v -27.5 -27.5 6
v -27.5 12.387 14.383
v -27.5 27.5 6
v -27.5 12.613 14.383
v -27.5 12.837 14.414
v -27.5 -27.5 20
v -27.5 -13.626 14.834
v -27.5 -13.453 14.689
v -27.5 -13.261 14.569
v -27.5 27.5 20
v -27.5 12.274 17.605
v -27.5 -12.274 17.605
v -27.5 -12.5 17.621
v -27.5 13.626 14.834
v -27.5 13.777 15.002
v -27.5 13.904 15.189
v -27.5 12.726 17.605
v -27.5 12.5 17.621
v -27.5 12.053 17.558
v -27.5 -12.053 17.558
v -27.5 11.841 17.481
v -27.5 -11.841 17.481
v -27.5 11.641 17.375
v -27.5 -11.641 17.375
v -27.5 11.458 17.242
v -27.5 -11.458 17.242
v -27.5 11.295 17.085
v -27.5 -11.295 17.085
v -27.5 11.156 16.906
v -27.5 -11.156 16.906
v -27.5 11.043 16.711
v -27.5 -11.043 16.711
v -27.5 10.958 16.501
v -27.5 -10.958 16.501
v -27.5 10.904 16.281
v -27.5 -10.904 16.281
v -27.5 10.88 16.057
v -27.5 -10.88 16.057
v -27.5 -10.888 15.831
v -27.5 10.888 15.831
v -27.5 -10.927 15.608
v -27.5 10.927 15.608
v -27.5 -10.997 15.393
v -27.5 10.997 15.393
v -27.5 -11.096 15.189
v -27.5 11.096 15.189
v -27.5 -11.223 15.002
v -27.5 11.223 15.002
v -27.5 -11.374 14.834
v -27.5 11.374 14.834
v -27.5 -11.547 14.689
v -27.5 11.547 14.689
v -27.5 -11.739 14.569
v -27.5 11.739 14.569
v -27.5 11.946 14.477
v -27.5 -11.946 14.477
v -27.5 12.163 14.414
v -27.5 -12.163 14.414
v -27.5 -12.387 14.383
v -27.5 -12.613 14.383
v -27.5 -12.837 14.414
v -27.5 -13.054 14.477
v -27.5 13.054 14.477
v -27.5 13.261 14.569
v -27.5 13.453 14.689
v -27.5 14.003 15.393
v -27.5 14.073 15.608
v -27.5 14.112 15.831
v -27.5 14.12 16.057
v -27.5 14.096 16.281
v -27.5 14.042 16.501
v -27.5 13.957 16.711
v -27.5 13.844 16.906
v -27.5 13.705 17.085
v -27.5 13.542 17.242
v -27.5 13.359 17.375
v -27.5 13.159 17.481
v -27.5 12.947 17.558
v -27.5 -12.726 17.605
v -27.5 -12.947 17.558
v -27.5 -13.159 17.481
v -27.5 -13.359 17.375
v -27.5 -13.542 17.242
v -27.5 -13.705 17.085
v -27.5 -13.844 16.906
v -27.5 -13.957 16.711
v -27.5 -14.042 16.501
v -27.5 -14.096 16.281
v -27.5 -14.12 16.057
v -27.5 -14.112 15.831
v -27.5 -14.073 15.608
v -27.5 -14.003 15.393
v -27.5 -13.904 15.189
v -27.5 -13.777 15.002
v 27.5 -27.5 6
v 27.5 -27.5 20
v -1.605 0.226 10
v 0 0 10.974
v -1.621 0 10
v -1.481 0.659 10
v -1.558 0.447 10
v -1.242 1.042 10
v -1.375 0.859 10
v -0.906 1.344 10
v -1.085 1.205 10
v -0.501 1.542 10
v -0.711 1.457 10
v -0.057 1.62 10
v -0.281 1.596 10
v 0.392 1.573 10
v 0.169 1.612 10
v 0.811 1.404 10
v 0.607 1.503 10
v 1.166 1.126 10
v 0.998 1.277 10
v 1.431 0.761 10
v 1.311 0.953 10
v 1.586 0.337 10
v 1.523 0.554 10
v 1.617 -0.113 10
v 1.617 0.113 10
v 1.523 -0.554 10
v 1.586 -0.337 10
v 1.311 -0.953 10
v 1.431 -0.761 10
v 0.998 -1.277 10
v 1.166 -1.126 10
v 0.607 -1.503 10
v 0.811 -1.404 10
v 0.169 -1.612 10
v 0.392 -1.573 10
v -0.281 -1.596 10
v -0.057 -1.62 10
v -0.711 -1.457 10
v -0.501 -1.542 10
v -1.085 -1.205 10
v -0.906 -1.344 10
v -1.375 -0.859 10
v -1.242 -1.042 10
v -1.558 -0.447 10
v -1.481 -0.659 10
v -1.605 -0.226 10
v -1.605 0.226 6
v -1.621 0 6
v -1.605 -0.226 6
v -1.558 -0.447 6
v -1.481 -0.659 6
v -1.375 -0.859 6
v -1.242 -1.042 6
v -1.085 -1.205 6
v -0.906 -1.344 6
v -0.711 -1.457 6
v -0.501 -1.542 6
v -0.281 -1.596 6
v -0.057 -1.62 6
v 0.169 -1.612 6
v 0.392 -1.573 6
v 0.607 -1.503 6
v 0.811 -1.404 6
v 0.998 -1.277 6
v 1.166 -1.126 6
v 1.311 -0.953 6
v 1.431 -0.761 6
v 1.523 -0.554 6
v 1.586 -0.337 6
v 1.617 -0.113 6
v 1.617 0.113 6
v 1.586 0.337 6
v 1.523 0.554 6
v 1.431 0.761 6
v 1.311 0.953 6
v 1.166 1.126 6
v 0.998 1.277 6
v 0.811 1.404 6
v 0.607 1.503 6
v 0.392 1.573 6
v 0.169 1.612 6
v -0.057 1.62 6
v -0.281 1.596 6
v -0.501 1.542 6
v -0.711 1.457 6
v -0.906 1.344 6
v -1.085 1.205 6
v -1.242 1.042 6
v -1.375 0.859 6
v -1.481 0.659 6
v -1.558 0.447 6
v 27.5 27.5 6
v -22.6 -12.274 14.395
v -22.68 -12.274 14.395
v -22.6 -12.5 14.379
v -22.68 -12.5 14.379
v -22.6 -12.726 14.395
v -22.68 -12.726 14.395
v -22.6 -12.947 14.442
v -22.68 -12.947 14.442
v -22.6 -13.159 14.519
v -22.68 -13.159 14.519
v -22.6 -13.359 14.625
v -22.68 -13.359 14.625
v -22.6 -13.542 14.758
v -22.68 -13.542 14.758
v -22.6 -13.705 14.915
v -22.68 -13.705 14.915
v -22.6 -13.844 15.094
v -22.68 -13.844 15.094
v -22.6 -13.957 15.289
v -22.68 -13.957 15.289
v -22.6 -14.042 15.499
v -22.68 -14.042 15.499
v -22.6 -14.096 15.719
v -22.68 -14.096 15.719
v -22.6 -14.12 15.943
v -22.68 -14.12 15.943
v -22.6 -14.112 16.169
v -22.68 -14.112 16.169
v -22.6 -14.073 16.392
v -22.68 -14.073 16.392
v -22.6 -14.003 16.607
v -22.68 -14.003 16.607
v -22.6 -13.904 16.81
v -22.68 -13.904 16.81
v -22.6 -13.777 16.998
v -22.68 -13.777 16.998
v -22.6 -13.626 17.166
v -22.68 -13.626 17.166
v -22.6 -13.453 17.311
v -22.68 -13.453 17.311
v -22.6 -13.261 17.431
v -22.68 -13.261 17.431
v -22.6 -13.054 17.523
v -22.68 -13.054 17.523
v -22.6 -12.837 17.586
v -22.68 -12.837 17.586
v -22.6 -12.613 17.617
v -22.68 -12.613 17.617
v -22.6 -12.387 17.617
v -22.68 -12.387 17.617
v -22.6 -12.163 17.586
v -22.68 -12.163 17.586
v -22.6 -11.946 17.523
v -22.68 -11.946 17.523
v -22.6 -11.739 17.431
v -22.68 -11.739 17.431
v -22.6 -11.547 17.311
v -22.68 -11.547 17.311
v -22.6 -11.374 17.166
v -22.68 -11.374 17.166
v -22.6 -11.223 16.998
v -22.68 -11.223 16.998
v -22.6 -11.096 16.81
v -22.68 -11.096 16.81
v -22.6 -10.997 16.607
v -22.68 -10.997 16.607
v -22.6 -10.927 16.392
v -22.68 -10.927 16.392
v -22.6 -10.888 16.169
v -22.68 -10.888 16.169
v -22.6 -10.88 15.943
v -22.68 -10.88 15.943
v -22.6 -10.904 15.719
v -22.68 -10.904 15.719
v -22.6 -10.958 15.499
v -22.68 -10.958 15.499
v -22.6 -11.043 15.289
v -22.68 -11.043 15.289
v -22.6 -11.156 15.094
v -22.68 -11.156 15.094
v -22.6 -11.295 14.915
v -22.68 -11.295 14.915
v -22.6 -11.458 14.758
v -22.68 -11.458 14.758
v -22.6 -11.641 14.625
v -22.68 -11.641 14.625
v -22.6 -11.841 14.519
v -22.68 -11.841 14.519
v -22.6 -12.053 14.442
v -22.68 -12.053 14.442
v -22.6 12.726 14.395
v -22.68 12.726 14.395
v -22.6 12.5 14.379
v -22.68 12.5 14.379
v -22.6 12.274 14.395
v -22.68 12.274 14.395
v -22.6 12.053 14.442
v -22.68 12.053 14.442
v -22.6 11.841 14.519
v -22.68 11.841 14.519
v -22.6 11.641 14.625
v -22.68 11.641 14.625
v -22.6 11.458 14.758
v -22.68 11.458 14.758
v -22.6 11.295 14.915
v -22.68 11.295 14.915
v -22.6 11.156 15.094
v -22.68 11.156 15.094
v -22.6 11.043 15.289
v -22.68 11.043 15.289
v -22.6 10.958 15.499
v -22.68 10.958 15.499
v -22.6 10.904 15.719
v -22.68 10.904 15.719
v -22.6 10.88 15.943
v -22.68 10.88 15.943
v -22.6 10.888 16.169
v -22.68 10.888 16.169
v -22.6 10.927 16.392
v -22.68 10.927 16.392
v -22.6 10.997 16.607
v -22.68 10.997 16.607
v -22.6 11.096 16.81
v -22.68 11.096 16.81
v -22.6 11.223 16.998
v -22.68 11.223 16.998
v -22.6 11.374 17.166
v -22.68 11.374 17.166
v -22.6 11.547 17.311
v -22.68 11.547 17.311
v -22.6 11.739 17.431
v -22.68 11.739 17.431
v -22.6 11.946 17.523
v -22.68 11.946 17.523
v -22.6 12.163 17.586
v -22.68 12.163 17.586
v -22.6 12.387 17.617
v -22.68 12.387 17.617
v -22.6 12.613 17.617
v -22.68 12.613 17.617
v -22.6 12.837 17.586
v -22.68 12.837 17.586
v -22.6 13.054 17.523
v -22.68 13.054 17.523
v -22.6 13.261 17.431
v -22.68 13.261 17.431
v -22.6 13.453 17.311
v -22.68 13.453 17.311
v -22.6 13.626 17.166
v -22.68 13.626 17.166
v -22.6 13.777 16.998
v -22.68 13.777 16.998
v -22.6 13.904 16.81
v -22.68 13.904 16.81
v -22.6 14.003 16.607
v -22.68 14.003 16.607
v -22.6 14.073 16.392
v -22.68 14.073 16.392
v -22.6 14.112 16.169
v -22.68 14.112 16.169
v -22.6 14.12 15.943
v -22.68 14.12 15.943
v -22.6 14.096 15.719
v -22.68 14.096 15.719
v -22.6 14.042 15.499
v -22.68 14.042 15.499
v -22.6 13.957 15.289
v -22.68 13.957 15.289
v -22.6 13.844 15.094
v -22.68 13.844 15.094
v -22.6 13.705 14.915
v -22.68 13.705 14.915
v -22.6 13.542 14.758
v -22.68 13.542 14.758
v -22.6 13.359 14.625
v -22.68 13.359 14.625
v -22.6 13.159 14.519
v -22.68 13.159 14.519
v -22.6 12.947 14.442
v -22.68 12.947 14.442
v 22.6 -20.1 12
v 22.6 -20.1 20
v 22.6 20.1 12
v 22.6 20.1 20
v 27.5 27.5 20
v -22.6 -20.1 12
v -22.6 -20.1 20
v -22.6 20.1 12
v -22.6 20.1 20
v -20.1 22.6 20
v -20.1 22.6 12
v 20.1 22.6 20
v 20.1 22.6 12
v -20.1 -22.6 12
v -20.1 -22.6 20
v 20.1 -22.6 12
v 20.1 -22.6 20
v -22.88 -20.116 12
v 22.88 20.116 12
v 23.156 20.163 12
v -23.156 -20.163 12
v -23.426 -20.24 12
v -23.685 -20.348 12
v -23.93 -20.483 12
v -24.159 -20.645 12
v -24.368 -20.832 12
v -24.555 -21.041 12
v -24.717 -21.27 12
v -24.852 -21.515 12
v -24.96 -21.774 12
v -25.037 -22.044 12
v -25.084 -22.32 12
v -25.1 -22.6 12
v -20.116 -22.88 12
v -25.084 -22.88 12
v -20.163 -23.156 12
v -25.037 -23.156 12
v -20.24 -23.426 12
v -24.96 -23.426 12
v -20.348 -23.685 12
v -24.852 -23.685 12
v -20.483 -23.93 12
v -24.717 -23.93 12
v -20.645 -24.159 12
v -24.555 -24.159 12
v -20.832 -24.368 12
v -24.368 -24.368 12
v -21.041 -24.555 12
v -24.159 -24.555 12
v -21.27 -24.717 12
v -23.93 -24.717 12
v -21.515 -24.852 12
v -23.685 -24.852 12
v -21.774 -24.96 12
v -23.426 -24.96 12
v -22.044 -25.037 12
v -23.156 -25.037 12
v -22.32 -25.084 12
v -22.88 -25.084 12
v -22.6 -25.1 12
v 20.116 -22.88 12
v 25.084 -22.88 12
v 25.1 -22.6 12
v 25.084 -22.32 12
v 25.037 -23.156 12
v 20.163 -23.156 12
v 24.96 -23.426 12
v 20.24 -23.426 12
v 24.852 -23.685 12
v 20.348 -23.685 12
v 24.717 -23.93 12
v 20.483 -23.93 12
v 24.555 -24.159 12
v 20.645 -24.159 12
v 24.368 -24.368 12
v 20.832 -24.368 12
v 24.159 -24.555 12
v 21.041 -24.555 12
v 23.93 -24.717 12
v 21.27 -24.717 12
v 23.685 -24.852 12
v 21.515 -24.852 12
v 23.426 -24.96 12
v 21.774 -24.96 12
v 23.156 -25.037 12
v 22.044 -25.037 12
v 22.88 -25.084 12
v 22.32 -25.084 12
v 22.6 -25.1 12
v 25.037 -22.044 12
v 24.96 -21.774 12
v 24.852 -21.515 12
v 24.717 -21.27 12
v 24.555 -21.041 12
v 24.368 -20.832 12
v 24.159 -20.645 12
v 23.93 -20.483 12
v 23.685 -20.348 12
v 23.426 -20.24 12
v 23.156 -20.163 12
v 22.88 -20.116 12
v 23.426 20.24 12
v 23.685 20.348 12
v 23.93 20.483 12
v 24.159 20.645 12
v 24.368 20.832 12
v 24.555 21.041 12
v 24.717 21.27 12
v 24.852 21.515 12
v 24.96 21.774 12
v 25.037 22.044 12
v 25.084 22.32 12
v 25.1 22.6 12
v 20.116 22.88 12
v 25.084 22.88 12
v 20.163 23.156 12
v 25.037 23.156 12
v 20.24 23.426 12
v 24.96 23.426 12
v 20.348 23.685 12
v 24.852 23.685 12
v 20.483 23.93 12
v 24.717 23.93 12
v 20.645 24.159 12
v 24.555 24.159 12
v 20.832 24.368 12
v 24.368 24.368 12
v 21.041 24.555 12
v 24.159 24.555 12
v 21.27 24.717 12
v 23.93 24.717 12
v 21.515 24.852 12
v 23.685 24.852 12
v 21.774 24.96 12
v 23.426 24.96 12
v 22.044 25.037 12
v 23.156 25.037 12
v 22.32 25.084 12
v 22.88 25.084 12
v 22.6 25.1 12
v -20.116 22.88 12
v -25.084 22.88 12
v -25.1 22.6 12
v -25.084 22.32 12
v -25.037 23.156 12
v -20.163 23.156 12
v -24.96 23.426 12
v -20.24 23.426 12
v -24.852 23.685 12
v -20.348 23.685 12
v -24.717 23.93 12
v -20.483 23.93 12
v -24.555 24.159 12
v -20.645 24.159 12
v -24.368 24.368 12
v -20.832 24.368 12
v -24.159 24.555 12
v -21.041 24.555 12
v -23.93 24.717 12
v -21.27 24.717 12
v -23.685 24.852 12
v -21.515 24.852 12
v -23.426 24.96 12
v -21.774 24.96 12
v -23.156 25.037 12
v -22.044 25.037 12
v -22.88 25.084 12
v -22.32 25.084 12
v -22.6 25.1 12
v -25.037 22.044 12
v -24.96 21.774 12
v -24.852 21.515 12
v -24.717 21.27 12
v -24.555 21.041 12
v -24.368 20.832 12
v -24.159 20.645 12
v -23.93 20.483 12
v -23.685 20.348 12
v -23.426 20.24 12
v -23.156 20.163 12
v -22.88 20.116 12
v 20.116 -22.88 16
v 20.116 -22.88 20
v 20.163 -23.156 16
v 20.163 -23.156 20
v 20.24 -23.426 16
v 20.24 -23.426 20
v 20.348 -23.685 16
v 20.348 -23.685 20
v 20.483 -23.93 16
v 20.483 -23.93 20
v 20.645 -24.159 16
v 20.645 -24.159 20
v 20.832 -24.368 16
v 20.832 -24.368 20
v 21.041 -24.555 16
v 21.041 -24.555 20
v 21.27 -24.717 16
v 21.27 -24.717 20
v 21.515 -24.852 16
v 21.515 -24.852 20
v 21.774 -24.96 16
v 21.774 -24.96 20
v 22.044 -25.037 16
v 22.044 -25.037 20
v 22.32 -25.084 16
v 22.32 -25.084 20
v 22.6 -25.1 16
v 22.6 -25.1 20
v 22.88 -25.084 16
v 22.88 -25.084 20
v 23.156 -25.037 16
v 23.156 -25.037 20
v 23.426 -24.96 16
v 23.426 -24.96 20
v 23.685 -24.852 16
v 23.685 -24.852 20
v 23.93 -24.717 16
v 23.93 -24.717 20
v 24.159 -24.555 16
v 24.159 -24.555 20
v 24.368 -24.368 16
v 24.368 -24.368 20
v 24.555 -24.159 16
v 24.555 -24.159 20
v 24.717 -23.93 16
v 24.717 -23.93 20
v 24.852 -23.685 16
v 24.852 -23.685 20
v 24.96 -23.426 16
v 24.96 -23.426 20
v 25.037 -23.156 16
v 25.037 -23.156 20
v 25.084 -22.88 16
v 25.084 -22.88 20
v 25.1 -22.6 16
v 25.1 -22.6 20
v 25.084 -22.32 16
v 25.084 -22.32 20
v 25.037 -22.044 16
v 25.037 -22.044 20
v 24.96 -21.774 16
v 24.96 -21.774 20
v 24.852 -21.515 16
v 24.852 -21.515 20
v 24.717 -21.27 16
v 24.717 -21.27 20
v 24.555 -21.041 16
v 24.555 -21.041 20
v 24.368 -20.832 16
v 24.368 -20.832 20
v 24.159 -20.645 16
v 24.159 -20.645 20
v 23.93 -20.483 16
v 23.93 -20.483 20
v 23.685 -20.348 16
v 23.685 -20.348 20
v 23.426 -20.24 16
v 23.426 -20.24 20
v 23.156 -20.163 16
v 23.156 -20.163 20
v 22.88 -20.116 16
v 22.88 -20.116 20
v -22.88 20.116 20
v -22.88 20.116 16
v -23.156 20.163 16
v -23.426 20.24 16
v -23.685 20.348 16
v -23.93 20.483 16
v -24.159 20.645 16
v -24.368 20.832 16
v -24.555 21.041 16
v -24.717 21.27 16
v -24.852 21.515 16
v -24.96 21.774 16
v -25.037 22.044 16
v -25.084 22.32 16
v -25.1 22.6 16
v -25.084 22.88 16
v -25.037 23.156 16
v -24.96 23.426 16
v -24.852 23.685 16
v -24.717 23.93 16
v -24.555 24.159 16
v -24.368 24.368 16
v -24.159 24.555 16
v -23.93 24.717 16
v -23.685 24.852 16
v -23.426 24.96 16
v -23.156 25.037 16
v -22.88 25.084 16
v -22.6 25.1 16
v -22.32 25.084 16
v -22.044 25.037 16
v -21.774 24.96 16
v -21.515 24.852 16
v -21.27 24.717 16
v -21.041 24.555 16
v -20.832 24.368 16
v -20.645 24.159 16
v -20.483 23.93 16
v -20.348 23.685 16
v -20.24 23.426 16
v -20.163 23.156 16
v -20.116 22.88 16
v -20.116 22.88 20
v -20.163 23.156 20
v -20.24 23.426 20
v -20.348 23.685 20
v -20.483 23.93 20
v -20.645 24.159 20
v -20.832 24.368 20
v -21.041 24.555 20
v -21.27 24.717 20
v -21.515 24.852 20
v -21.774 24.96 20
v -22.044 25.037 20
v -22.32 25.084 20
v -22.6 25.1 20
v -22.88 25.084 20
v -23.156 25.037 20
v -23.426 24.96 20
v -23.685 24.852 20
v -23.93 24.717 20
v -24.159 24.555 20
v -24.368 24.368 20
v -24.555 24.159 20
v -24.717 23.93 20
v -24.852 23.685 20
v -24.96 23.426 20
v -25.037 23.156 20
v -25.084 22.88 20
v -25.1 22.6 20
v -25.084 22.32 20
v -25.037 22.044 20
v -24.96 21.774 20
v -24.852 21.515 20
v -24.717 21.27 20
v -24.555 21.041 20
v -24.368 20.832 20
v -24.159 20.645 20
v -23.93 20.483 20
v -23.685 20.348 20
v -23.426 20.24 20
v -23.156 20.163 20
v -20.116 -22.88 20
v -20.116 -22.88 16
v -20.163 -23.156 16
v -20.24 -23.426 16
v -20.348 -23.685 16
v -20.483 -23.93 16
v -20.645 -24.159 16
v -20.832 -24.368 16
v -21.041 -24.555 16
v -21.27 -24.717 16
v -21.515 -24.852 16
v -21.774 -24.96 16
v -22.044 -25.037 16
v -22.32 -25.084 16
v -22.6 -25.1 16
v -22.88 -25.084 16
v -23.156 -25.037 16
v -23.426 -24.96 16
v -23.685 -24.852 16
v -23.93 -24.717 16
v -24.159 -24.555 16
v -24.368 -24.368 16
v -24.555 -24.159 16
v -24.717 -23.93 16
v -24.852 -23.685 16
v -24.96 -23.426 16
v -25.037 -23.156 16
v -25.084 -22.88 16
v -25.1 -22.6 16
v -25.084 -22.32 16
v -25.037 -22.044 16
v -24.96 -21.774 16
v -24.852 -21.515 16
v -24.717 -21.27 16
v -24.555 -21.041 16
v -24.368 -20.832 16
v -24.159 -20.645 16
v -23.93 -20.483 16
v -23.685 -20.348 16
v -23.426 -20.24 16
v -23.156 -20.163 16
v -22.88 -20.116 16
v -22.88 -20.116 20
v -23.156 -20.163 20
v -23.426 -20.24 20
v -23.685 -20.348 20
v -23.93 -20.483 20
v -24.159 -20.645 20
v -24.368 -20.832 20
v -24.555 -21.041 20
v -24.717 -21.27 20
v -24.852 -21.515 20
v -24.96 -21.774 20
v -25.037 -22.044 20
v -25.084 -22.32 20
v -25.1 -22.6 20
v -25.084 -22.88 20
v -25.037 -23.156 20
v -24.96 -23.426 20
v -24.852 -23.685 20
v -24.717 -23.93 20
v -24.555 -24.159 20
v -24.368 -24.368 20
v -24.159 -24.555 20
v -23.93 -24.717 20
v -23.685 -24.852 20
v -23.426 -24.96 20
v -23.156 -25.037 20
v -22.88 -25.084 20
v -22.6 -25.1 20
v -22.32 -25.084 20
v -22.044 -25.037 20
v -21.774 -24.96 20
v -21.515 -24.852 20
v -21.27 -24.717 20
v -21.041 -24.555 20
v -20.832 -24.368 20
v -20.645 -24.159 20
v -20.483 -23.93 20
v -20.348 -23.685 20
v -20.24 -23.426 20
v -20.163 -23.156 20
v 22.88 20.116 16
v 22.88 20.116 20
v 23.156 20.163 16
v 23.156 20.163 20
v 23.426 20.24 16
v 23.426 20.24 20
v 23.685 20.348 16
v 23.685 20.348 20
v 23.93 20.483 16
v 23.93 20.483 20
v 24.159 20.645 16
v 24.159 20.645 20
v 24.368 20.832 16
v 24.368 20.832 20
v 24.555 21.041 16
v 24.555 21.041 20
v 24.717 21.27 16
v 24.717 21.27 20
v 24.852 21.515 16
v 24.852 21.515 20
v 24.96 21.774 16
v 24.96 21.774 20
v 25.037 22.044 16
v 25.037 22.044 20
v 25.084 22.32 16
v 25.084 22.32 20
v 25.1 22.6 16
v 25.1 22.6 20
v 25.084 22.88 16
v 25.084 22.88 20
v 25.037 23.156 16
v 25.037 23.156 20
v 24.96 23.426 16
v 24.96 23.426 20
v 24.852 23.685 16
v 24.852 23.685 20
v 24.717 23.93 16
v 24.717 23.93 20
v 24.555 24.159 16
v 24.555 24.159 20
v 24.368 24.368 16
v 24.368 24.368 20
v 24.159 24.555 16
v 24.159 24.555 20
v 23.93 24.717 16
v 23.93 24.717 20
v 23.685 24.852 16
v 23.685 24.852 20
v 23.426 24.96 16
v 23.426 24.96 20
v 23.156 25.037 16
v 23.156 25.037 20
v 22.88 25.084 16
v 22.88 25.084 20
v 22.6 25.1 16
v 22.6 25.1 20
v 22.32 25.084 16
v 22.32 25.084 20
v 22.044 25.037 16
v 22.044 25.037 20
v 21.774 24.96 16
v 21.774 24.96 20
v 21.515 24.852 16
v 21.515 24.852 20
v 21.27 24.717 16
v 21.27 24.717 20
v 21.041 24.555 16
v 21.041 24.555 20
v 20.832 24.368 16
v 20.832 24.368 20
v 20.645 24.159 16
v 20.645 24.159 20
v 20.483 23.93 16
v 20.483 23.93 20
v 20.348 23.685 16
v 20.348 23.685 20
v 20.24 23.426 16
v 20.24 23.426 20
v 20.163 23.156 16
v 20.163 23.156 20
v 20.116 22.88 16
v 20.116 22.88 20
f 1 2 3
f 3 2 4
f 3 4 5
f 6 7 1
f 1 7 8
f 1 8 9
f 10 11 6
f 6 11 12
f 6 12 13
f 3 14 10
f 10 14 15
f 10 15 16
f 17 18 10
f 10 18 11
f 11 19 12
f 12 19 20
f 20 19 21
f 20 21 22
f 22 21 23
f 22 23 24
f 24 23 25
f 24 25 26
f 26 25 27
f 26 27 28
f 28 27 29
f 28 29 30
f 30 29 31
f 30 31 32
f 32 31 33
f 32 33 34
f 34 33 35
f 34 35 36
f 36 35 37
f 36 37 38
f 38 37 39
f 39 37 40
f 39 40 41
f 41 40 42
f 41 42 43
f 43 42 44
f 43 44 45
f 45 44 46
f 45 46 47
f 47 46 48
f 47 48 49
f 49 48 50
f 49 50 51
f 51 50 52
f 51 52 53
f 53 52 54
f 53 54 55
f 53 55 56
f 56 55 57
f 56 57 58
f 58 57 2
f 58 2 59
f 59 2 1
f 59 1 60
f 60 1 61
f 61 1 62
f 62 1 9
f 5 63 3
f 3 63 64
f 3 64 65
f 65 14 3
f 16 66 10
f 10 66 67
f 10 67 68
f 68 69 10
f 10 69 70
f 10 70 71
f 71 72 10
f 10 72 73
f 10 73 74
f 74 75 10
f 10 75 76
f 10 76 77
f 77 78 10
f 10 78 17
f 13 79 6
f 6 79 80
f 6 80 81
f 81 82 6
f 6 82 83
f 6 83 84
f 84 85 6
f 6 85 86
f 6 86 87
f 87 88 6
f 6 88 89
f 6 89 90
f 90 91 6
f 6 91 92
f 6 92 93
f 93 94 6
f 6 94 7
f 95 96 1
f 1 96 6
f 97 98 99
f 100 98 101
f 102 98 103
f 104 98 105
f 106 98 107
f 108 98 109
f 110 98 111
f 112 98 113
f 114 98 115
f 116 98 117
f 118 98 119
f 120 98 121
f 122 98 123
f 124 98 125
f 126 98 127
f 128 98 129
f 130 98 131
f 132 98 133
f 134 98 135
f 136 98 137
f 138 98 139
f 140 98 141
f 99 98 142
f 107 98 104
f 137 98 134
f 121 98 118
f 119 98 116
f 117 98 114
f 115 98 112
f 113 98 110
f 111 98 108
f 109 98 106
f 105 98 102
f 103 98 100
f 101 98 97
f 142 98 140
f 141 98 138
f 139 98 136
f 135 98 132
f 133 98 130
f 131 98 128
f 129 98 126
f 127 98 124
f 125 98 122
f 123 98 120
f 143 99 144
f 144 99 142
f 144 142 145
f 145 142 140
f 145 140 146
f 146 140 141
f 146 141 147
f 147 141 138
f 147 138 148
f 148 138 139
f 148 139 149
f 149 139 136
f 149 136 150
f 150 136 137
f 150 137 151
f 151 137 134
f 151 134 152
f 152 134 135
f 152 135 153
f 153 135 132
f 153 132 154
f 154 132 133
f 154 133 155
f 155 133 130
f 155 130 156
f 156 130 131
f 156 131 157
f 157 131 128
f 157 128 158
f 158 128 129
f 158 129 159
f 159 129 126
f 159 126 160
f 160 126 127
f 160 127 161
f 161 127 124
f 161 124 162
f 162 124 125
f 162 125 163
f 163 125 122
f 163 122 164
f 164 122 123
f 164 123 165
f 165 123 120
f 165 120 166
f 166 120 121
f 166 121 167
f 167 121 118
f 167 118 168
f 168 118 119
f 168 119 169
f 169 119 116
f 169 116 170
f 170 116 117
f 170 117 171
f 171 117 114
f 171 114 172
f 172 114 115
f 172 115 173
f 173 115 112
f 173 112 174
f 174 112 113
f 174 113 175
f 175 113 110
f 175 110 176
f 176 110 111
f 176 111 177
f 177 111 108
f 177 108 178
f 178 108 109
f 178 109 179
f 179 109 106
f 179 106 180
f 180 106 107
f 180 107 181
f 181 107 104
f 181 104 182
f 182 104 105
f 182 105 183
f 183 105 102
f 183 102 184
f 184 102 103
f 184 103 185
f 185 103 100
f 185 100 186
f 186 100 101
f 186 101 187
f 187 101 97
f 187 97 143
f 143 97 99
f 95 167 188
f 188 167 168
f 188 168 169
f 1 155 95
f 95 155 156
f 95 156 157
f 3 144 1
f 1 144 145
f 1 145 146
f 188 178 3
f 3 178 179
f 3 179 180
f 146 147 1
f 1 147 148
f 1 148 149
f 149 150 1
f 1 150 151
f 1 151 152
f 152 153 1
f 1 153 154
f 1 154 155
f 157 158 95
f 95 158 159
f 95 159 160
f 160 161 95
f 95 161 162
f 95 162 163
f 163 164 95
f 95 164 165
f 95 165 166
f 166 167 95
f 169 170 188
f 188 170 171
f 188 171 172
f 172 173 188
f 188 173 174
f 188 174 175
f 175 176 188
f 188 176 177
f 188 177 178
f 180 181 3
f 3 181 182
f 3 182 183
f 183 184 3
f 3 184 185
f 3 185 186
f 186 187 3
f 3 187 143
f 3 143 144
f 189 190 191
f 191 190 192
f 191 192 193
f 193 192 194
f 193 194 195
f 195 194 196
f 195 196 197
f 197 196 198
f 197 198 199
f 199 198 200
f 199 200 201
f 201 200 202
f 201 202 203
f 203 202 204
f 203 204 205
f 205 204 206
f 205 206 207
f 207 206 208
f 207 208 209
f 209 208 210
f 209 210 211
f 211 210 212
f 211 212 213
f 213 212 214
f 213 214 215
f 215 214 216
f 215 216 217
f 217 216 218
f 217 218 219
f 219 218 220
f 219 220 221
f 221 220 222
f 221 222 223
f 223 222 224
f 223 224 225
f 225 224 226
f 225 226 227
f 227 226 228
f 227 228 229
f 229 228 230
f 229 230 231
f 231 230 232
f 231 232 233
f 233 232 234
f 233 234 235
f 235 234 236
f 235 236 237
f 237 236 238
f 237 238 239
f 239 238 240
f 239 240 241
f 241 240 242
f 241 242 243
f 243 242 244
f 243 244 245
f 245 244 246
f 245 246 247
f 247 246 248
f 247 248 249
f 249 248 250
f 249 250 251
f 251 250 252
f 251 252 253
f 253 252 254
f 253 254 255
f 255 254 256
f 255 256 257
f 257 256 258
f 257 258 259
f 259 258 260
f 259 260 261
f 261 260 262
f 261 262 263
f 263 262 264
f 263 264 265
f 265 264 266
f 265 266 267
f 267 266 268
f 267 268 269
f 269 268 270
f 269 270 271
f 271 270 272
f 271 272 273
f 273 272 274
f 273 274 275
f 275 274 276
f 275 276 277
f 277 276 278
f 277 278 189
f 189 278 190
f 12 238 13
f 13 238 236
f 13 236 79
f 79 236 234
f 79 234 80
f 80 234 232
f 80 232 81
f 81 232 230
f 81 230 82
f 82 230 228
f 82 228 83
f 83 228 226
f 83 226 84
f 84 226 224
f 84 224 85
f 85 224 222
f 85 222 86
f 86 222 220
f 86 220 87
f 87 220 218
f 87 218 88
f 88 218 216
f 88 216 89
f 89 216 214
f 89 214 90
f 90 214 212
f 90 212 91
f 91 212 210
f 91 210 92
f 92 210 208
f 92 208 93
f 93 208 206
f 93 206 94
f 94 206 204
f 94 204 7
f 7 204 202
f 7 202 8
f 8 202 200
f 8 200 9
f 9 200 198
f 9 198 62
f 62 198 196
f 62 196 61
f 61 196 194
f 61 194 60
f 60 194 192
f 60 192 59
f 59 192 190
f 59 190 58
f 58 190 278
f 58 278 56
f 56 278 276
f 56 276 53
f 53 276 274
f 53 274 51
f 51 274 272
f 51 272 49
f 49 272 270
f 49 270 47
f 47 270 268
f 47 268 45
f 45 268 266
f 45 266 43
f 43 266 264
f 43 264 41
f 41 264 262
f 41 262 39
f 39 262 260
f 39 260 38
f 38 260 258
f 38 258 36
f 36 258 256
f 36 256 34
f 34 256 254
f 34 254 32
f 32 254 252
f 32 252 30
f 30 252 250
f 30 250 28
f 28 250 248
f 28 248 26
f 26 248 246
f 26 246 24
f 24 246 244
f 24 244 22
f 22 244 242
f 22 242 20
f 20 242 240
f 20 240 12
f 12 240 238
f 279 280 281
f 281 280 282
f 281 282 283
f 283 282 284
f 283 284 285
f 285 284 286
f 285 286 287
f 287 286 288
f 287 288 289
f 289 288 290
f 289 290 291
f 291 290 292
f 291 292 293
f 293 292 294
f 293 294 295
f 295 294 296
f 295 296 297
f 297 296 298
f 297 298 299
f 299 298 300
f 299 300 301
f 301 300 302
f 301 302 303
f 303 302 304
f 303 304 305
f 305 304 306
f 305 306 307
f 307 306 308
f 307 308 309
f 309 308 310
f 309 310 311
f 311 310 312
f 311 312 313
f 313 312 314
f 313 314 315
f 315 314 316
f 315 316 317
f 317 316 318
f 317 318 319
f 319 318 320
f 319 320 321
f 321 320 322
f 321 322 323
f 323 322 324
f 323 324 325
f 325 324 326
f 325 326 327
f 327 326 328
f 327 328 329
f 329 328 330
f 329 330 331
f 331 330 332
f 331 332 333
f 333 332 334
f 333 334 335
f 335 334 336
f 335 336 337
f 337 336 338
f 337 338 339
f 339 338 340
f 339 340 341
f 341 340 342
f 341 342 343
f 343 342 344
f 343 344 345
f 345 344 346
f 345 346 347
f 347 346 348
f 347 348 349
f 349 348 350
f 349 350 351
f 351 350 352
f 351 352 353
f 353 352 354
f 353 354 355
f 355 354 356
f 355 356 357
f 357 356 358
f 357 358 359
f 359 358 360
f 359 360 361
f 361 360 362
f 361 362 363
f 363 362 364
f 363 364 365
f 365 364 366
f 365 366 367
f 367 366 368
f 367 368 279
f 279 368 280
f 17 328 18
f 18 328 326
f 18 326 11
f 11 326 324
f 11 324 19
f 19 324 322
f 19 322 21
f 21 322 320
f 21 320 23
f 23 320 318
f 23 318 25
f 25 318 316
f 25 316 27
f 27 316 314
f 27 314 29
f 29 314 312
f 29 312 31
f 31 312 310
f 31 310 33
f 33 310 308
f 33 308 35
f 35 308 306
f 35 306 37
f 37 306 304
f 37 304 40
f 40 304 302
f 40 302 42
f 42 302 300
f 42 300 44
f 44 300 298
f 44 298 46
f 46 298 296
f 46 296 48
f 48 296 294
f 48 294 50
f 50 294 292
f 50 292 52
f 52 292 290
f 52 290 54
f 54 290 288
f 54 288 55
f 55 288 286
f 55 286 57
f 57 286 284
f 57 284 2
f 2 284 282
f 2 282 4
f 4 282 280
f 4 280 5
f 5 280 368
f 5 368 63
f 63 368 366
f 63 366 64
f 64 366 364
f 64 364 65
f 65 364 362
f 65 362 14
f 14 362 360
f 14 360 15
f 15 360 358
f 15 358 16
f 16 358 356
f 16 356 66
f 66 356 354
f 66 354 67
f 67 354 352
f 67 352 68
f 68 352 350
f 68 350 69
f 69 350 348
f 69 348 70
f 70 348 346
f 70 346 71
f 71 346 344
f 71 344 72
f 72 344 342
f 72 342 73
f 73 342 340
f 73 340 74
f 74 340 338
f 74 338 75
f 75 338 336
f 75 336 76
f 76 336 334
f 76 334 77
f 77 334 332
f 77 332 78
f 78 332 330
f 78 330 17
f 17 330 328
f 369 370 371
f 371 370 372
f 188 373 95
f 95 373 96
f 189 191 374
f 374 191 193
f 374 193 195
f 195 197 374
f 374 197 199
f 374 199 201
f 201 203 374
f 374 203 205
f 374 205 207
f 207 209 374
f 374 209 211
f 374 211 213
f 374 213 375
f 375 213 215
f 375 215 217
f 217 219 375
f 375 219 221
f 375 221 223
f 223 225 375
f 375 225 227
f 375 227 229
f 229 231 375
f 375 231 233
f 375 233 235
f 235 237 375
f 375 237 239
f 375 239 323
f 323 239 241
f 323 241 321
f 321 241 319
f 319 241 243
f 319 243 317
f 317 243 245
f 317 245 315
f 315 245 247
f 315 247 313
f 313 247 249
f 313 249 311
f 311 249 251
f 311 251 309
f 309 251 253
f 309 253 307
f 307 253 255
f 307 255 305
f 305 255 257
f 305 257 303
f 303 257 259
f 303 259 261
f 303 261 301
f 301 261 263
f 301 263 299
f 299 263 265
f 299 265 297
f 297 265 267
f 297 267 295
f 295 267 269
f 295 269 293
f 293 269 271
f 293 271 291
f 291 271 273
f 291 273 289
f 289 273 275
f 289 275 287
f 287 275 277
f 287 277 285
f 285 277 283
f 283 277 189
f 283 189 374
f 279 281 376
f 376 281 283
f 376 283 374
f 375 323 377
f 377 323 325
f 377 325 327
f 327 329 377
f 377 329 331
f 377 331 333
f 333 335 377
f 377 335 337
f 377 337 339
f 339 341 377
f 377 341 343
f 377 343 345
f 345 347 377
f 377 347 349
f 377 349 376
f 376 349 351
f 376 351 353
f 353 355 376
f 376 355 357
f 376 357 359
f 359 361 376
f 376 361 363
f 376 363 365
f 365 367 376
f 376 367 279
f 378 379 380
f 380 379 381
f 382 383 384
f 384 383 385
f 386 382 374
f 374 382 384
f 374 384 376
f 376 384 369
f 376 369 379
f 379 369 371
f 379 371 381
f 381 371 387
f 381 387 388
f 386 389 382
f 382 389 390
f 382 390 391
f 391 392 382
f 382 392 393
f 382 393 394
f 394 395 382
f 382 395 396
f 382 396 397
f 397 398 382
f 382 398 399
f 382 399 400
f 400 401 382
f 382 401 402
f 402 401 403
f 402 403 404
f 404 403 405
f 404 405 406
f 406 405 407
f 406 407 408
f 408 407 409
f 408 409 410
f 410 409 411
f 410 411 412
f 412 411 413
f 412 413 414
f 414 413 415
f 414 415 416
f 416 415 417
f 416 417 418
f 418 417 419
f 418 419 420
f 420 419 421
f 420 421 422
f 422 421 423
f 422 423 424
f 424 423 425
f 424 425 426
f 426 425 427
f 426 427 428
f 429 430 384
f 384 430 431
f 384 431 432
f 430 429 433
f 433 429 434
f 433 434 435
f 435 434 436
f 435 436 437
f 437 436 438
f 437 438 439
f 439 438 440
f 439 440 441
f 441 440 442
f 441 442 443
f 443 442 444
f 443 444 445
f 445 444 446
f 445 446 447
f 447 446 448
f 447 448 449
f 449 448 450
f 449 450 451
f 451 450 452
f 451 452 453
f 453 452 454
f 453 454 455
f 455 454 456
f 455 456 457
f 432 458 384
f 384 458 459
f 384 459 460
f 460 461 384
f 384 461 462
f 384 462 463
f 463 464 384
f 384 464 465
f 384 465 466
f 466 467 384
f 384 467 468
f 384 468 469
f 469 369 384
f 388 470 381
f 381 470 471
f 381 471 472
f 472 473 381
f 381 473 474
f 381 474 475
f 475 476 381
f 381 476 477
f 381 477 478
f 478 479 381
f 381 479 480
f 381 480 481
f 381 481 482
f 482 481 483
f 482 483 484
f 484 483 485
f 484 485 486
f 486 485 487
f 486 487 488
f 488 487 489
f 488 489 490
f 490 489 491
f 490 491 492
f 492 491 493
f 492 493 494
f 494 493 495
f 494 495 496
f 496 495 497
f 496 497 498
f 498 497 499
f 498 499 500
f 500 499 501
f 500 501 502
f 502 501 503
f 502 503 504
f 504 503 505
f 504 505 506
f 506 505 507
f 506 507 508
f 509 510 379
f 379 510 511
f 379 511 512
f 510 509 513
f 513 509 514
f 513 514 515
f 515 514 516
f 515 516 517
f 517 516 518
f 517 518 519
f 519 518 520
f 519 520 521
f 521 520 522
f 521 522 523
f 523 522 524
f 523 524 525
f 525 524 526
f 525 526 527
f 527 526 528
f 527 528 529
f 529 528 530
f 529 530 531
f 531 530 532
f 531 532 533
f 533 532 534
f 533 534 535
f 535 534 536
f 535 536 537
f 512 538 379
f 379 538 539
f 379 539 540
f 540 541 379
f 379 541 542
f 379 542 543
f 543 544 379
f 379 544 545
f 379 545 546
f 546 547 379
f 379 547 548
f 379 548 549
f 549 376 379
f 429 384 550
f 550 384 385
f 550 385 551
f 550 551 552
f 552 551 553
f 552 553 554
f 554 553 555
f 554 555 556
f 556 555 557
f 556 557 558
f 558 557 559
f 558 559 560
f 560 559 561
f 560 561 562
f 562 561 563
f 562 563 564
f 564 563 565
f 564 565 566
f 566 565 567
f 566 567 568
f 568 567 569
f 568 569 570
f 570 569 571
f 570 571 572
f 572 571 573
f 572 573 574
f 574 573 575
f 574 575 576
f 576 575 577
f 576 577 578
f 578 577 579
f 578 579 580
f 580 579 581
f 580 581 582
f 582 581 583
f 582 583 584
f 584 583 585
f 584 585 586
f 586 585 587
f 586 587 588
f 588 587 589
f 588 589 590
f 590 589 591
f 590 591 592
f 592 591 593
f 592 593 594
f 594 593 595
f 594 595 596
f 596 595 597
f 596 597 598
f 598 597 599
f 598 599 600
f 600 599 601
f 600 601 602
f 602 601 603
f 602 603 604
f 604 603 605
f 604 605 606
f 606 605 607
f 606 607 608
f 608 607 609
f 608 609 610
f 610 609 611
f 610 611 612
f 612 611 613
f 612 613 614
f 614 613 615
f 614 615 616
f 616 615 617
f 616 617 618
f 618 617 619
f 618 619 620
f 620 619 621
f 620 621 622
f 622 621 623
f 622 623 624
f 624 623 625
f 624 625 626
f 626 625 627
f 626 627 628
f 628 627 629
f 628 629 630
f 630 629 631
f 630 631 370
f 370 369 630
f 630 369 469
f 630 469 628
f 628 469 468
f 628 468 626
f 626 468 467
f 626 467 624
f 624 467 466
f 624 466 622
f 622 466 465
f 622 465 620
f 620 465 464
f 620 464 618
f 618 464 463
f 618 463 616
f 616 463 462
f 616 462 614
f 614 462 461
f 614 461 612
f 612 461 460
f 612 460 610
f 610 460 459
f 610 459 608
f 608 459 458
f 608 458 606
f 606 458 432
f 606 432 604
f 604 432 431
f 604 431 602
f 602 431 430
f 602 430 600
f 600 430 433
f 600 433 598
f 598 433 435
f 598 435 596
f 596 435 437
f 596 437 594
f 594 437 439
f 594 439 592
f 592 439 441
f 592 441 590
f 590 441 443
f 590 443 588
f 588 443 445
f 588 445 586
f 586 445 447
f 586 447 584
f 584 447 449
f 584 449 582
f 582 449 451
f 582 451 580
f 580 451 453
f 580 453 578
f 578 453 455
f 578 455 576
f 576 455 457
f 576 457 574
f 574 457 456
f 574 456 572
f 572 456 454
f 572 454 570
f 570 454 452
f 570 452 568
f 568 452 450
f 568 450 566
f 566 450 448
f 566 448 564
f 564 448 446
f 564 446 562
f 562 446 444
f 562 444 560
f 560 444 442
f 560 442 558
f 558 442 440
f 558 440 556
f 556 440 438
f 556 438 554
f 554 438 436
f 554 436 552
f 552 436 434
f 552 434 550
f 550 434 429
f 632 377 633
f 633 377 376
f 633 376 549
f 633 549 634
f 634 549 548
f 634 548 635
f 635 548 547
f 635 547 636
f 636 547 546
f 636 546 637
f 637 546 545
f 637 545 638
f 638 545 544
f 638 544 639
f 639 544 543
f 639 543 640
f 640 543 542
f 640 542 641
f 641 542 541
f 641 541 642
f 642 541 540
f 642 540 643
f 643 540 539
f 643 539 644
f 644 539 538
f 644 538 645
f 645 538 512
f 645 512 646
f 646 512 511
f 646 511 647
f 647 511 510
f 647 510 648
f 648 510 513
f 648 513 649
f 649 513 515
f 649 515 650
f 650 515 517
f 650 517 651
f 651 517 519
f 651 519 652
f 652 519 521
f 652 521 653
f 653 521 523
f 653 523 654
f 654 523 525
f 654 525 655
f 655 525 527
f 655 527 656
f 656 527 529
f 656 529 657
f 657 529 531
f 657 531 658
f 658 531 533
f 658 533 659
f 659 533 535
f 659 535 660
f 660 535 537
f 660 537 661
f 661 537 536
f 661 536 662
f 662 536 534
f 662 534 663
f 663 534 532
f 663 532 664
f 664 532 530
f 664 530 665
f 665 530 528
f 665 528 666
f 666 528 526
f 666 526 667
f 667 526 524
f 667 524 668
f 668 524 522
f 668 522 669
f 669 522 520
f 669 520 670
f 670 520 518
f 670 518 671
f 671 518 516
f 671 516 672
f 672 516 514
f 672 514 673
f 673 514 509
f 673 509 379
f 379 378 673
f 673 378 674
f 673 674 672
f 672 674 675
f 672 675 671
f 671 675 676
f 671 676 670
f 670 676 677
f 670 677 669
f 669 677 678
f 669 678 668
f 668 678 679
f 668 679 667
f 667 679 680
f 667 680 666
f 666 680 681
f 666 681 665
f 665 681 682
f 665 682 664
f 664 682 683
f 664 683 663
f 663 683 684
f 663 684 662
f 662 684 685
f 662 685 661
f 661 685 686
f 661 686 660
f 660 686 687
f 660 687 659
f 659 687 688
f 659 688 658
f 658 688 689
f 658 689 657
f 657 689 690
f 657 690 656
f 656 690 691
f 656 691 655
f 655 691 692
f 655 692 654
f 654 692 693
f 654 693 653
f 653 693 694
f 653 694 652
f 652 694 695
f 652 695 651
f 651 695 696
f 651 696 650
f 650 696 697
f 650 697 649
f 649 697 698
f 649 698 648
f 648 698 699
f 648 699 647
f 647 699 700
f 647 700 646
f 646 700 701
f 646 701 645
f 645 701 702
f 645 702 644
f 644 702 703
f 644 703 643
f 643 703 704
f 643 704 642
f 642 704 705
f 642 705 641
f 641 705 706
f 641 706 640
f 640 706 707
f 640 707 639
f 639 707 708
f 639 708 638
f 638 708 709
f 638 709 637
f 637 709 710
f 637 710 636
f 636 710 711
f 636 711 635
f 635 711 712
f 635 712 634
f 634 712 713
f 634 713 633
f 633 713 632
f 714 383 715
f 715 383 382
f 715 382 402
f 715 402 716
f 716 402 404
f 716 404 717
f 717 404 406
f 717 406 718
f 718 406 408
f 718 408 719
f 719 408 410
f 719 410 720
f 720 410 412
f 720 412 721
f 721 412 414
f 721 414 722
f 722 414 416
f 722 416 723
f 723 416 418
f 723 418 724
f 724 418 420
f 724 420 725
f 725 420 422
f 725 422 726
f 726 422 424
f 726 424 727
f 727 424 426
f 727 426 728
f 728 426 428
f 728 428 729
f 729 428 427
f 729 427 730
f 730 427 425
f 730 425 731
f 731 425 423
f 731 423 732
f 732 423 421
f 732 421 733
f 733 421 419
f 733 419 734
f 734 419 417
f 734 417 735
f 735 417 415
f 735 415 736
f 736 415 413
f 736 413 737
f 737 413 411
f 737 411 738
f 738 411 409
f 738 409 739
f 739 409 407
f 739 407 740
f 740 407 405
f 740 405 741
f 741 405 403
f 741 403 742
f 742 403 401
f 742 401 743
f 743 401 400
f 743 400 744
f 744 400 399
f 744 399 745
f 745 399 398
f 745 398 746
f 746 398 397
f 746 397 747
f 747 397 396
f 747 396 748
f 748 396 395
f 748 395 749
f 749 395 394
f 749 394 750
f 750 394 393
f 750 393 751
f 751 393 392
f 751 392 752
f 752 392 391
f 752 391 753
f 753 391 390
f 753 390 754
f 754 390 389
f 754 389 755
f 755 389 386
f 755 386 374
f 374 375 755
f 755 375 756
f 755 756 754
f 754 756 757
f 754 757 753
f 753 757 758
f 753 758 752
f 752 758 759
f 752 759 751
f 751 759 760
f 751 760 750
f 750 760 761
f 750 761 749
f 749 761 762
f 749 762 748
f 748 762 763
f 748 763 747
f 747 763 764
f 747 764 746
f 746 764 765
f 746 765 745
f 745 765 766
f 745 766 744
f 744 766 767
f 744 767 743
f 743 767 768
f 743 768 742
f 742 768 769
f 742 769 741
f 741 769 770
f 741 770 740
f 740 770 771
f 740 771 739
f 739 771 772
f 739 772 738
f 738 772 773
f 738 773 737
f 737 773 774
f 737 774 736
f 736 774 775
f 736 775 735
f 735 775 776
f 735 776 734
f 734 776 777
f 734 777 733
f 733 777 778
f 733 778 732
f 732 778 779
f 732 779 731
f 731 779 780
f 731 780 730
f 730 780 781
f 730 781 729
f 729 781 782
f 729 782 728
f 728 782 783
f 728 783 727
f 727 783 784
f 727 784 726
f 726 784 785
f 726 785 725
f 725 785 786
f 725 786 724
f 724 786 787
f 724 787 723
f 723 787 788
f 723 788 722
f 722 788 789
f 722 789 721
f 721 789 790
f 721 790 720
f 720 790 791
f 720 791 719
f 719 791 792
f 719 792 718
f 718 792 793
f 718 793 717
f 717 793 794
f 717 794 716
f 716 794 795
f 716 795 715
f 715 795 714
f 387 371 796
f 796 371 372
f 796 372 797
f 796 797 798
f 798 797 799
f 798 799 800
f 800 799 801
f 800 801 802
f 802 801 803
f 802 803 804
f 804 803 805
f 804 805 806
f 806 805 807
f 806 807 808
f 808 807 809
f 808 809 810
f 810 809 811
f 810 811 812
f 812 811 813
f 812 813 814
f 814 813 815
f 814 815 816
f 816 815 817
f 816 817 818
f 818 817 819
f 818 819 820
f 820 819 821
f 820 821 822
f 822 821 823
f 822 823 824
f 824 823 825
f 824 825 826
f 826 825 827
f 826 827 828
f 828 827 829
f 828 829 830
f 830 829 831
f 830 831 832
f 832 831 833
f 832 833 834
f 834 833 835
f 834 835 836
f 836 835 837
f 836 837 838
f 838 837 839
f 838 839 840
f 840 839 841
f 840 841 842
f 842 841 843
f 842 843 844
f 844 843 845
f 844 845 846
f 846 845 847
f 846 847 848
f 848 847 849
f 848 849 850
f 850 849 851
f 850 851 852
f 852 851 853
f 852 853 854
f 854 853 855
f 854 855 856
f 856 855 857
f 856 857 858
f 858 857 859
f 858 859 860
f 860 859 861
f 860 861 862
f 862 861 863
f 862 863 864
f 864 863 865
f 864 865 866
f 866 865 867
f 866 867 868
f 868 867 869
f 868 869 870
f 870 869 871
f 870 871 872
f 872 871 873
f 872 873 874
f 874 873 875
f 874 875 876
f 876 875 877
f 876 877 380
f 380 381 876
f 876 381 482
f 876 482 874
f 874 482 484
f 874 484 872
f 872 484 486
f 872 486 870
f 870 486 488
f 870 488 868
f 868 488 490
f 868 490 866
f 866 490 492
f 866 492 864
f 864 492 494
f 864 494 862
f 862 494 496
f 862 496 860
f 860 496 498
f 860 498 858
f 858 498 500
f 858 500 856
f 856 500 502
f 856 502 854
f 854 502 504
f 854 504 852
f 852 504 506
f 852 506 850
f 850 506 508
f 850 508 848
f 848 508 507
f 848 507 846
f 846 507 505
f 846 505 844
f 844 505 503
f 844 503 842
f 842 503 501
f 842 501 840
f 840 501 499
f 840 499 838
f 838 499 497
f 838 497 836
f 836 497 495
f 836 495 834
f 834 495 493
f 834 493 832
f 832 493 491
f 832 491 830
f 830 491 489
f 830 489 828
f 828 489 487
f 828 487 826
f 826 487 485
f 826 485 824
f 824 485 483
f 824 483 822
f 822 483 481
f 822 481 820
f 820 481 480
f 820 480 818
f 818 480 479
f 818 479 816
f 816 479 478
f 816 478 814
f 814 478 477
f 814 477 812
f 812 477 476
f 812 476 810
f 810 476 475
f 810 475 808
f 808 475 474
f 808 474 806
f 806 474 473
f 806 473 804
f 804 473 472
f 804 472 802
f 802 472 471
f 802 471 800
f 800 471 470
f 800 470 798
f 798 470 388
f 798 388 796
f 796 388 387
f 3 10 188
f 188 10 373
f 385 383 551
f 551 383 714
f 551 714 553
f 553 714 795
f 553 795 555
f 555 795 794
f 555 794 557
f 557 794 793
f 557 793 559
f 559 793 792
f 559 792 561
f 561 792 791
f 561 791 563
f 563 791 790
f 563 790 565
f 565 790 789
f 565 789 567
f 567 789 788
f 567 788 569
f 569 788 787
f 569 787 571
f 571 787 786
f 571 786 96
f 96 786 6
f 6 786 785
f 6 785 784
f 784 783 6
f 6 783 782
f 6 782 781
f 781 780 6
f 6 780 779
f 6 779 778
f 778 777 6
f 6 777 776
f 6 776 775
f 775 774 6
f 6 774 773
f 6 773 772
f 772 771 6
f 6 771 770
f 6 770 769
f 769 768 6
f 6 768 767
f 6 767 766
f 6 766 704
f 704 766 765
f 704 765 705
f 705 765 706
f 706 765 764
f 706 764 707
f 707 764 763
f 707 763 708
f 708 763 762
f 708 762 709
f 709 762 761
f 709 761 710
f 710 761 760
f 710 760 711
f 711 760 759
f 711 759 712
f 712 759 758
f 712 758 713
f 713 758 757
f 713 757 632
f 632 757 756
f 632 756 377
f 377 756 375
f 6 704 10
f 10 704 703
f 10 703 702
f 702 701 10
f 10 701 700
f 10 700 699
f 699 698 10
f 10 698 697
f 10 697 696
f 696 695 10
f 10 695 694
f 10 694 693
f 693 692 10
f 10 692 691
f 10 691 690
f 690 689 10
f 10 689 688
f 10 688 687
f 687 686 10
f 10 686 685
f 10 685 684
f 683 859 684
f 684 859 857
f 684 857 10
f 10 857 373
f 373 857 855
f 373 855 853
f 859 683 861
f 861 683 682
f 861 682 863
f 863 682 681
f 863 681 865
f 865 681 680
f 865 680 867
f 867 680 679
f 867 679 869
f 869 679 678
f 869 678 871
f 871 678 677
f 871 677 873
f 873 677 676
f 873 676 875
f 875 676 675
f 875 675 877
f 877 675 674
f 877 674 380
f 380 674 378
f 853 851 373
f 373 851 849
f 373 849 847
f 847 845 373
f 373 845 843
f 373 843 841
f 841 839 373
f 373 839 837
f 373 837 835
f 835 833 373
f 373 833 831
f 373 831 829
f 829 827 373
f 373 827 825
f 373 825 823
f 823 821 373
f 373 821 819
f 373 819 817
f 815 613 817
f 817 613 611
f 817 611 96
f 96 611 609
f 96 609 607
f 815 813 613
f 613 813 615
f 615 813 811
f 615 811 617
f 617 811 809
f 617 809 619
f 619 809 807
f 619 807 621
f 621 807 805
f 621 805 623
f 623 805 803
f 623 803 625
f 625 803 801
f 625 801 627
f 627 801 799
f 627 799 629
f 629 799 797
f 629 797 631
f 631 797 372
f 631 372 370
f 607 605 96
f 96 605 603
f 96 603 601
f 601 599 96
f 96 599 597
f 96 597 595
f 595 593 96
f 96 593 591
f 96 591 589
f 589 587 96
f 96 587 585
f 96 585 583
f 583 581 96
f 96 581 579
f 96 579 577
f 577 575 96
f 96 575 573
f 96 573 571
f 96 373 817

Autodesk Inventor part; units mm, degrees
ref_plane "YZ Plane" through (0, 0, 0) normal (1, 0, 0) x (0, 1, 0)
ref_plane "XZ Plane" through (0, 0, 0) normal (0, 1, 0) x (-1, 0, 0)
ref_plane "XY Plane" through (0, 0, 0) normal (0, 0, 1) x (1, 0, 0)
sketch "Sketch1" plane through (0, 0, 0) normal (0, 0, 1) x (1, 0, 0)
  line L0 (0, 38.5) -> (0, -38.5) construction
  line L1 (-38.5, 0) -> (38.5, 0) construction
  line L2 (-27.5, 27.5) -> (27.5, 27.5)
  line L3 (27.5, 27.5) -> (27.5, -27.5)
  line L4 (27.5, -27.5) -> (-27.5, -27.5)
  line L5 (-27.5, -27.5) -> (-27.5, 27.5)
  point P0 (0, 0)
  dimension "d0" = 55
  dimension "d1" = 55
extrude "Extrusion1" add sketch "Sketch1" along normal blind 20
sketch "Sketch4" plane through (0, 0, 20) normal (0, 0, 1) x (1, 0, 0)
  line L0 (-38.5, 0) -> (38.5, 0) construction
  line L1 (0, 38.5) -> (0, -38.5) construction
  line L2 (-22.6, 22.6) -> (22.6, 22.6) construction
  line L3 (22.6, 22.6) -> (22.6, -22.6) construction
  line L4 (22.6, -22.6) -> (-22.6, -22.6) construction
  line L5 (-22.6, -22.6) -> (-22.6, 22.6) construction
  point P0 (0, 0)
  dimension "d15" = 45.2
  dimension "d16" = 45.2
hole "Hole2" at (-22.6, 22.6, 20) at (22.6, 22.6, 20) at (22.6, -22.6, 20) at (-22.6, -22.6, 20) at (-22.6, 22.6, 20) at (22.6, 22.6, 20) direction (0, 0, -1) diameter 5 depth 8
sketch "Sketch5" plane through (0, 0, 20) normal (0, 0, 1) x (1, 0, 0)
  circle A0 centre (-22.6, 22.6) radius 2.5 projected
  circle A1 centre (22.6, -22.6) radius 2.5 projected
  line L0 (-22.6, 22.6) -> (22.6, 22.6)
  line L1 (22.6, 22.6) -> (22.6, -22.6)
  line L2 (22.6, -22.6) -> (-22.6, -22.6)
  line L3 (-22.6, -22.6) -> (-22.6, 22.6)
  point P0 (0, 0)
extrude "Extrusion3" cut sketch "Sketch5" against normal blind 8 contours L0 L1 A1 L2 L3 A0 | A0 L3 L0 | L1 L2 A1 picked at (-20.9542, 22.4146) picked at (21.1977, -21.7189)
sketch "Sketch6" plane through (-27.5, -27.5, 0) normal (-1, 0, 0) x (0, 0, 1)
  line L0 (0, 55) -> (20, 55) projected
  line L1 (0, 0) -> (20, 0) projected
  line L2 (20, 7.4) -> (12, 7.4) construction
  line L3 (20, 47.6) -> (20, 7.4) construction
  line L4 (12, 47.6) -> (20, 47.6) construction
  line L5 (12, 7.4) -> (12, 47.6) construction
  line L6 (16, 47.6) -> (16, 7.4) construction
  point P0 (0, 27.5)
  point P1 (16, 40)
  point P2 (16, 15)
  dimension "d26" = 15
  dimension "d27" = 15
hole "Hole3" at (-27.5, 12.5, 16) at (-27.5, -12.5, 16) direction (1, 0, 0) diameter 3.242 end up to surface thread size "M4x0.7" class "6H" standard "ANSI Metric M Profile"
sketch "Sketch8" plane through (0, 0, 0) normal (0, 0, -1) x (-1, 0, 0)
  line L0 (27.5, 27.5) -> (-27.5, 27.5) construction
  line L1 (-27.5, 27.5) -> (-27.5, -27.5) construction
  line L2 (-27.5, -27.5) -> (27.5, -27.5) construction
  line L3 (27.5, -27.5) -> (27.5, 27.5) construction
  line L4 (0, -38.5) -> (0, 38.5) construction
  line L5 (-38.5, 0) -> (38.5, 0) construction
  line L6 (-12.5, -12.5) -> (12.5, -12.5)
  line L7 (12.5, -12.5) -> (12.5, 12.5)
  line L8 (12.5, 12.5) -> (-12.5, 12.5)
  line L9 (-12.5, 12.5) -> (-12.5, -12.5)
  point P0 (0, 0)
  dimension "d44" = 25
  dimension "d45" = 25
extrude "Extrusion4" cut sketch "Sketch8" against normal blind 6
sketch "Sketch9" plane through (0, 0, 0) normal (0, 0, -1) x (-1, 0, 0)
  line L0 (12.5, 12.5) -> (12.5, -12.5) construction
  line L1 (12.5, -12.5) -> (-12.5, -12.5) construction
  line L2 (-12.5, -12.5) -> (-12.5, 12.5) construction
  line L3 (-12.5, 12.5) -> (12.5, 12.5) construction
  line L4 (27.5, 27.5) -> (-27.5, 27.5) construction
  line L5 (-27.5, 27.5) -> (-27.5, -27.5) construction
  line L6 (-27.5, -27.5) -> (27.5, -27.5) construction
  line L7 (27.5, -27.5) -> (27.5, 27.5) construction
  line L8 (12.5, -12.5) -> (-12.5, -12.5) construction
  point P0 (0, 0)
hole "Hole5" at (-12.5, 12.5, 0) at (-12.5, -12.5, 0) at (12.5, -12.5, 0) at (12.5, 12.5, 0) direction (0, 0, 1) diameter 3 depth 6
sketch "Sketch10" plane through (0, 0, 6) normal (0, 0, -1) x (-1, 0, 0)
  point P0 (0, 0)
  point P1 (0, 0)
hole "Hole6" at (0, 0, 6) direction (0, 0, 1) diameter 3.242 depth 4 tip angle 118 thread size "M4x0.7" class "6H" standard "ANSI Metric M Profile"
ref_plane "SplitPLane" through (0, 0, 6) normal (0, 0, -1) x (-1, 0, 0)
split "Split2" plane through (0, 0, 6) removes the side toward (0, 0, -1)
properties part number "Large-cuvette-mount-40mm-V4_top_extra0.2mm" material "PC/ABS Plastic"
